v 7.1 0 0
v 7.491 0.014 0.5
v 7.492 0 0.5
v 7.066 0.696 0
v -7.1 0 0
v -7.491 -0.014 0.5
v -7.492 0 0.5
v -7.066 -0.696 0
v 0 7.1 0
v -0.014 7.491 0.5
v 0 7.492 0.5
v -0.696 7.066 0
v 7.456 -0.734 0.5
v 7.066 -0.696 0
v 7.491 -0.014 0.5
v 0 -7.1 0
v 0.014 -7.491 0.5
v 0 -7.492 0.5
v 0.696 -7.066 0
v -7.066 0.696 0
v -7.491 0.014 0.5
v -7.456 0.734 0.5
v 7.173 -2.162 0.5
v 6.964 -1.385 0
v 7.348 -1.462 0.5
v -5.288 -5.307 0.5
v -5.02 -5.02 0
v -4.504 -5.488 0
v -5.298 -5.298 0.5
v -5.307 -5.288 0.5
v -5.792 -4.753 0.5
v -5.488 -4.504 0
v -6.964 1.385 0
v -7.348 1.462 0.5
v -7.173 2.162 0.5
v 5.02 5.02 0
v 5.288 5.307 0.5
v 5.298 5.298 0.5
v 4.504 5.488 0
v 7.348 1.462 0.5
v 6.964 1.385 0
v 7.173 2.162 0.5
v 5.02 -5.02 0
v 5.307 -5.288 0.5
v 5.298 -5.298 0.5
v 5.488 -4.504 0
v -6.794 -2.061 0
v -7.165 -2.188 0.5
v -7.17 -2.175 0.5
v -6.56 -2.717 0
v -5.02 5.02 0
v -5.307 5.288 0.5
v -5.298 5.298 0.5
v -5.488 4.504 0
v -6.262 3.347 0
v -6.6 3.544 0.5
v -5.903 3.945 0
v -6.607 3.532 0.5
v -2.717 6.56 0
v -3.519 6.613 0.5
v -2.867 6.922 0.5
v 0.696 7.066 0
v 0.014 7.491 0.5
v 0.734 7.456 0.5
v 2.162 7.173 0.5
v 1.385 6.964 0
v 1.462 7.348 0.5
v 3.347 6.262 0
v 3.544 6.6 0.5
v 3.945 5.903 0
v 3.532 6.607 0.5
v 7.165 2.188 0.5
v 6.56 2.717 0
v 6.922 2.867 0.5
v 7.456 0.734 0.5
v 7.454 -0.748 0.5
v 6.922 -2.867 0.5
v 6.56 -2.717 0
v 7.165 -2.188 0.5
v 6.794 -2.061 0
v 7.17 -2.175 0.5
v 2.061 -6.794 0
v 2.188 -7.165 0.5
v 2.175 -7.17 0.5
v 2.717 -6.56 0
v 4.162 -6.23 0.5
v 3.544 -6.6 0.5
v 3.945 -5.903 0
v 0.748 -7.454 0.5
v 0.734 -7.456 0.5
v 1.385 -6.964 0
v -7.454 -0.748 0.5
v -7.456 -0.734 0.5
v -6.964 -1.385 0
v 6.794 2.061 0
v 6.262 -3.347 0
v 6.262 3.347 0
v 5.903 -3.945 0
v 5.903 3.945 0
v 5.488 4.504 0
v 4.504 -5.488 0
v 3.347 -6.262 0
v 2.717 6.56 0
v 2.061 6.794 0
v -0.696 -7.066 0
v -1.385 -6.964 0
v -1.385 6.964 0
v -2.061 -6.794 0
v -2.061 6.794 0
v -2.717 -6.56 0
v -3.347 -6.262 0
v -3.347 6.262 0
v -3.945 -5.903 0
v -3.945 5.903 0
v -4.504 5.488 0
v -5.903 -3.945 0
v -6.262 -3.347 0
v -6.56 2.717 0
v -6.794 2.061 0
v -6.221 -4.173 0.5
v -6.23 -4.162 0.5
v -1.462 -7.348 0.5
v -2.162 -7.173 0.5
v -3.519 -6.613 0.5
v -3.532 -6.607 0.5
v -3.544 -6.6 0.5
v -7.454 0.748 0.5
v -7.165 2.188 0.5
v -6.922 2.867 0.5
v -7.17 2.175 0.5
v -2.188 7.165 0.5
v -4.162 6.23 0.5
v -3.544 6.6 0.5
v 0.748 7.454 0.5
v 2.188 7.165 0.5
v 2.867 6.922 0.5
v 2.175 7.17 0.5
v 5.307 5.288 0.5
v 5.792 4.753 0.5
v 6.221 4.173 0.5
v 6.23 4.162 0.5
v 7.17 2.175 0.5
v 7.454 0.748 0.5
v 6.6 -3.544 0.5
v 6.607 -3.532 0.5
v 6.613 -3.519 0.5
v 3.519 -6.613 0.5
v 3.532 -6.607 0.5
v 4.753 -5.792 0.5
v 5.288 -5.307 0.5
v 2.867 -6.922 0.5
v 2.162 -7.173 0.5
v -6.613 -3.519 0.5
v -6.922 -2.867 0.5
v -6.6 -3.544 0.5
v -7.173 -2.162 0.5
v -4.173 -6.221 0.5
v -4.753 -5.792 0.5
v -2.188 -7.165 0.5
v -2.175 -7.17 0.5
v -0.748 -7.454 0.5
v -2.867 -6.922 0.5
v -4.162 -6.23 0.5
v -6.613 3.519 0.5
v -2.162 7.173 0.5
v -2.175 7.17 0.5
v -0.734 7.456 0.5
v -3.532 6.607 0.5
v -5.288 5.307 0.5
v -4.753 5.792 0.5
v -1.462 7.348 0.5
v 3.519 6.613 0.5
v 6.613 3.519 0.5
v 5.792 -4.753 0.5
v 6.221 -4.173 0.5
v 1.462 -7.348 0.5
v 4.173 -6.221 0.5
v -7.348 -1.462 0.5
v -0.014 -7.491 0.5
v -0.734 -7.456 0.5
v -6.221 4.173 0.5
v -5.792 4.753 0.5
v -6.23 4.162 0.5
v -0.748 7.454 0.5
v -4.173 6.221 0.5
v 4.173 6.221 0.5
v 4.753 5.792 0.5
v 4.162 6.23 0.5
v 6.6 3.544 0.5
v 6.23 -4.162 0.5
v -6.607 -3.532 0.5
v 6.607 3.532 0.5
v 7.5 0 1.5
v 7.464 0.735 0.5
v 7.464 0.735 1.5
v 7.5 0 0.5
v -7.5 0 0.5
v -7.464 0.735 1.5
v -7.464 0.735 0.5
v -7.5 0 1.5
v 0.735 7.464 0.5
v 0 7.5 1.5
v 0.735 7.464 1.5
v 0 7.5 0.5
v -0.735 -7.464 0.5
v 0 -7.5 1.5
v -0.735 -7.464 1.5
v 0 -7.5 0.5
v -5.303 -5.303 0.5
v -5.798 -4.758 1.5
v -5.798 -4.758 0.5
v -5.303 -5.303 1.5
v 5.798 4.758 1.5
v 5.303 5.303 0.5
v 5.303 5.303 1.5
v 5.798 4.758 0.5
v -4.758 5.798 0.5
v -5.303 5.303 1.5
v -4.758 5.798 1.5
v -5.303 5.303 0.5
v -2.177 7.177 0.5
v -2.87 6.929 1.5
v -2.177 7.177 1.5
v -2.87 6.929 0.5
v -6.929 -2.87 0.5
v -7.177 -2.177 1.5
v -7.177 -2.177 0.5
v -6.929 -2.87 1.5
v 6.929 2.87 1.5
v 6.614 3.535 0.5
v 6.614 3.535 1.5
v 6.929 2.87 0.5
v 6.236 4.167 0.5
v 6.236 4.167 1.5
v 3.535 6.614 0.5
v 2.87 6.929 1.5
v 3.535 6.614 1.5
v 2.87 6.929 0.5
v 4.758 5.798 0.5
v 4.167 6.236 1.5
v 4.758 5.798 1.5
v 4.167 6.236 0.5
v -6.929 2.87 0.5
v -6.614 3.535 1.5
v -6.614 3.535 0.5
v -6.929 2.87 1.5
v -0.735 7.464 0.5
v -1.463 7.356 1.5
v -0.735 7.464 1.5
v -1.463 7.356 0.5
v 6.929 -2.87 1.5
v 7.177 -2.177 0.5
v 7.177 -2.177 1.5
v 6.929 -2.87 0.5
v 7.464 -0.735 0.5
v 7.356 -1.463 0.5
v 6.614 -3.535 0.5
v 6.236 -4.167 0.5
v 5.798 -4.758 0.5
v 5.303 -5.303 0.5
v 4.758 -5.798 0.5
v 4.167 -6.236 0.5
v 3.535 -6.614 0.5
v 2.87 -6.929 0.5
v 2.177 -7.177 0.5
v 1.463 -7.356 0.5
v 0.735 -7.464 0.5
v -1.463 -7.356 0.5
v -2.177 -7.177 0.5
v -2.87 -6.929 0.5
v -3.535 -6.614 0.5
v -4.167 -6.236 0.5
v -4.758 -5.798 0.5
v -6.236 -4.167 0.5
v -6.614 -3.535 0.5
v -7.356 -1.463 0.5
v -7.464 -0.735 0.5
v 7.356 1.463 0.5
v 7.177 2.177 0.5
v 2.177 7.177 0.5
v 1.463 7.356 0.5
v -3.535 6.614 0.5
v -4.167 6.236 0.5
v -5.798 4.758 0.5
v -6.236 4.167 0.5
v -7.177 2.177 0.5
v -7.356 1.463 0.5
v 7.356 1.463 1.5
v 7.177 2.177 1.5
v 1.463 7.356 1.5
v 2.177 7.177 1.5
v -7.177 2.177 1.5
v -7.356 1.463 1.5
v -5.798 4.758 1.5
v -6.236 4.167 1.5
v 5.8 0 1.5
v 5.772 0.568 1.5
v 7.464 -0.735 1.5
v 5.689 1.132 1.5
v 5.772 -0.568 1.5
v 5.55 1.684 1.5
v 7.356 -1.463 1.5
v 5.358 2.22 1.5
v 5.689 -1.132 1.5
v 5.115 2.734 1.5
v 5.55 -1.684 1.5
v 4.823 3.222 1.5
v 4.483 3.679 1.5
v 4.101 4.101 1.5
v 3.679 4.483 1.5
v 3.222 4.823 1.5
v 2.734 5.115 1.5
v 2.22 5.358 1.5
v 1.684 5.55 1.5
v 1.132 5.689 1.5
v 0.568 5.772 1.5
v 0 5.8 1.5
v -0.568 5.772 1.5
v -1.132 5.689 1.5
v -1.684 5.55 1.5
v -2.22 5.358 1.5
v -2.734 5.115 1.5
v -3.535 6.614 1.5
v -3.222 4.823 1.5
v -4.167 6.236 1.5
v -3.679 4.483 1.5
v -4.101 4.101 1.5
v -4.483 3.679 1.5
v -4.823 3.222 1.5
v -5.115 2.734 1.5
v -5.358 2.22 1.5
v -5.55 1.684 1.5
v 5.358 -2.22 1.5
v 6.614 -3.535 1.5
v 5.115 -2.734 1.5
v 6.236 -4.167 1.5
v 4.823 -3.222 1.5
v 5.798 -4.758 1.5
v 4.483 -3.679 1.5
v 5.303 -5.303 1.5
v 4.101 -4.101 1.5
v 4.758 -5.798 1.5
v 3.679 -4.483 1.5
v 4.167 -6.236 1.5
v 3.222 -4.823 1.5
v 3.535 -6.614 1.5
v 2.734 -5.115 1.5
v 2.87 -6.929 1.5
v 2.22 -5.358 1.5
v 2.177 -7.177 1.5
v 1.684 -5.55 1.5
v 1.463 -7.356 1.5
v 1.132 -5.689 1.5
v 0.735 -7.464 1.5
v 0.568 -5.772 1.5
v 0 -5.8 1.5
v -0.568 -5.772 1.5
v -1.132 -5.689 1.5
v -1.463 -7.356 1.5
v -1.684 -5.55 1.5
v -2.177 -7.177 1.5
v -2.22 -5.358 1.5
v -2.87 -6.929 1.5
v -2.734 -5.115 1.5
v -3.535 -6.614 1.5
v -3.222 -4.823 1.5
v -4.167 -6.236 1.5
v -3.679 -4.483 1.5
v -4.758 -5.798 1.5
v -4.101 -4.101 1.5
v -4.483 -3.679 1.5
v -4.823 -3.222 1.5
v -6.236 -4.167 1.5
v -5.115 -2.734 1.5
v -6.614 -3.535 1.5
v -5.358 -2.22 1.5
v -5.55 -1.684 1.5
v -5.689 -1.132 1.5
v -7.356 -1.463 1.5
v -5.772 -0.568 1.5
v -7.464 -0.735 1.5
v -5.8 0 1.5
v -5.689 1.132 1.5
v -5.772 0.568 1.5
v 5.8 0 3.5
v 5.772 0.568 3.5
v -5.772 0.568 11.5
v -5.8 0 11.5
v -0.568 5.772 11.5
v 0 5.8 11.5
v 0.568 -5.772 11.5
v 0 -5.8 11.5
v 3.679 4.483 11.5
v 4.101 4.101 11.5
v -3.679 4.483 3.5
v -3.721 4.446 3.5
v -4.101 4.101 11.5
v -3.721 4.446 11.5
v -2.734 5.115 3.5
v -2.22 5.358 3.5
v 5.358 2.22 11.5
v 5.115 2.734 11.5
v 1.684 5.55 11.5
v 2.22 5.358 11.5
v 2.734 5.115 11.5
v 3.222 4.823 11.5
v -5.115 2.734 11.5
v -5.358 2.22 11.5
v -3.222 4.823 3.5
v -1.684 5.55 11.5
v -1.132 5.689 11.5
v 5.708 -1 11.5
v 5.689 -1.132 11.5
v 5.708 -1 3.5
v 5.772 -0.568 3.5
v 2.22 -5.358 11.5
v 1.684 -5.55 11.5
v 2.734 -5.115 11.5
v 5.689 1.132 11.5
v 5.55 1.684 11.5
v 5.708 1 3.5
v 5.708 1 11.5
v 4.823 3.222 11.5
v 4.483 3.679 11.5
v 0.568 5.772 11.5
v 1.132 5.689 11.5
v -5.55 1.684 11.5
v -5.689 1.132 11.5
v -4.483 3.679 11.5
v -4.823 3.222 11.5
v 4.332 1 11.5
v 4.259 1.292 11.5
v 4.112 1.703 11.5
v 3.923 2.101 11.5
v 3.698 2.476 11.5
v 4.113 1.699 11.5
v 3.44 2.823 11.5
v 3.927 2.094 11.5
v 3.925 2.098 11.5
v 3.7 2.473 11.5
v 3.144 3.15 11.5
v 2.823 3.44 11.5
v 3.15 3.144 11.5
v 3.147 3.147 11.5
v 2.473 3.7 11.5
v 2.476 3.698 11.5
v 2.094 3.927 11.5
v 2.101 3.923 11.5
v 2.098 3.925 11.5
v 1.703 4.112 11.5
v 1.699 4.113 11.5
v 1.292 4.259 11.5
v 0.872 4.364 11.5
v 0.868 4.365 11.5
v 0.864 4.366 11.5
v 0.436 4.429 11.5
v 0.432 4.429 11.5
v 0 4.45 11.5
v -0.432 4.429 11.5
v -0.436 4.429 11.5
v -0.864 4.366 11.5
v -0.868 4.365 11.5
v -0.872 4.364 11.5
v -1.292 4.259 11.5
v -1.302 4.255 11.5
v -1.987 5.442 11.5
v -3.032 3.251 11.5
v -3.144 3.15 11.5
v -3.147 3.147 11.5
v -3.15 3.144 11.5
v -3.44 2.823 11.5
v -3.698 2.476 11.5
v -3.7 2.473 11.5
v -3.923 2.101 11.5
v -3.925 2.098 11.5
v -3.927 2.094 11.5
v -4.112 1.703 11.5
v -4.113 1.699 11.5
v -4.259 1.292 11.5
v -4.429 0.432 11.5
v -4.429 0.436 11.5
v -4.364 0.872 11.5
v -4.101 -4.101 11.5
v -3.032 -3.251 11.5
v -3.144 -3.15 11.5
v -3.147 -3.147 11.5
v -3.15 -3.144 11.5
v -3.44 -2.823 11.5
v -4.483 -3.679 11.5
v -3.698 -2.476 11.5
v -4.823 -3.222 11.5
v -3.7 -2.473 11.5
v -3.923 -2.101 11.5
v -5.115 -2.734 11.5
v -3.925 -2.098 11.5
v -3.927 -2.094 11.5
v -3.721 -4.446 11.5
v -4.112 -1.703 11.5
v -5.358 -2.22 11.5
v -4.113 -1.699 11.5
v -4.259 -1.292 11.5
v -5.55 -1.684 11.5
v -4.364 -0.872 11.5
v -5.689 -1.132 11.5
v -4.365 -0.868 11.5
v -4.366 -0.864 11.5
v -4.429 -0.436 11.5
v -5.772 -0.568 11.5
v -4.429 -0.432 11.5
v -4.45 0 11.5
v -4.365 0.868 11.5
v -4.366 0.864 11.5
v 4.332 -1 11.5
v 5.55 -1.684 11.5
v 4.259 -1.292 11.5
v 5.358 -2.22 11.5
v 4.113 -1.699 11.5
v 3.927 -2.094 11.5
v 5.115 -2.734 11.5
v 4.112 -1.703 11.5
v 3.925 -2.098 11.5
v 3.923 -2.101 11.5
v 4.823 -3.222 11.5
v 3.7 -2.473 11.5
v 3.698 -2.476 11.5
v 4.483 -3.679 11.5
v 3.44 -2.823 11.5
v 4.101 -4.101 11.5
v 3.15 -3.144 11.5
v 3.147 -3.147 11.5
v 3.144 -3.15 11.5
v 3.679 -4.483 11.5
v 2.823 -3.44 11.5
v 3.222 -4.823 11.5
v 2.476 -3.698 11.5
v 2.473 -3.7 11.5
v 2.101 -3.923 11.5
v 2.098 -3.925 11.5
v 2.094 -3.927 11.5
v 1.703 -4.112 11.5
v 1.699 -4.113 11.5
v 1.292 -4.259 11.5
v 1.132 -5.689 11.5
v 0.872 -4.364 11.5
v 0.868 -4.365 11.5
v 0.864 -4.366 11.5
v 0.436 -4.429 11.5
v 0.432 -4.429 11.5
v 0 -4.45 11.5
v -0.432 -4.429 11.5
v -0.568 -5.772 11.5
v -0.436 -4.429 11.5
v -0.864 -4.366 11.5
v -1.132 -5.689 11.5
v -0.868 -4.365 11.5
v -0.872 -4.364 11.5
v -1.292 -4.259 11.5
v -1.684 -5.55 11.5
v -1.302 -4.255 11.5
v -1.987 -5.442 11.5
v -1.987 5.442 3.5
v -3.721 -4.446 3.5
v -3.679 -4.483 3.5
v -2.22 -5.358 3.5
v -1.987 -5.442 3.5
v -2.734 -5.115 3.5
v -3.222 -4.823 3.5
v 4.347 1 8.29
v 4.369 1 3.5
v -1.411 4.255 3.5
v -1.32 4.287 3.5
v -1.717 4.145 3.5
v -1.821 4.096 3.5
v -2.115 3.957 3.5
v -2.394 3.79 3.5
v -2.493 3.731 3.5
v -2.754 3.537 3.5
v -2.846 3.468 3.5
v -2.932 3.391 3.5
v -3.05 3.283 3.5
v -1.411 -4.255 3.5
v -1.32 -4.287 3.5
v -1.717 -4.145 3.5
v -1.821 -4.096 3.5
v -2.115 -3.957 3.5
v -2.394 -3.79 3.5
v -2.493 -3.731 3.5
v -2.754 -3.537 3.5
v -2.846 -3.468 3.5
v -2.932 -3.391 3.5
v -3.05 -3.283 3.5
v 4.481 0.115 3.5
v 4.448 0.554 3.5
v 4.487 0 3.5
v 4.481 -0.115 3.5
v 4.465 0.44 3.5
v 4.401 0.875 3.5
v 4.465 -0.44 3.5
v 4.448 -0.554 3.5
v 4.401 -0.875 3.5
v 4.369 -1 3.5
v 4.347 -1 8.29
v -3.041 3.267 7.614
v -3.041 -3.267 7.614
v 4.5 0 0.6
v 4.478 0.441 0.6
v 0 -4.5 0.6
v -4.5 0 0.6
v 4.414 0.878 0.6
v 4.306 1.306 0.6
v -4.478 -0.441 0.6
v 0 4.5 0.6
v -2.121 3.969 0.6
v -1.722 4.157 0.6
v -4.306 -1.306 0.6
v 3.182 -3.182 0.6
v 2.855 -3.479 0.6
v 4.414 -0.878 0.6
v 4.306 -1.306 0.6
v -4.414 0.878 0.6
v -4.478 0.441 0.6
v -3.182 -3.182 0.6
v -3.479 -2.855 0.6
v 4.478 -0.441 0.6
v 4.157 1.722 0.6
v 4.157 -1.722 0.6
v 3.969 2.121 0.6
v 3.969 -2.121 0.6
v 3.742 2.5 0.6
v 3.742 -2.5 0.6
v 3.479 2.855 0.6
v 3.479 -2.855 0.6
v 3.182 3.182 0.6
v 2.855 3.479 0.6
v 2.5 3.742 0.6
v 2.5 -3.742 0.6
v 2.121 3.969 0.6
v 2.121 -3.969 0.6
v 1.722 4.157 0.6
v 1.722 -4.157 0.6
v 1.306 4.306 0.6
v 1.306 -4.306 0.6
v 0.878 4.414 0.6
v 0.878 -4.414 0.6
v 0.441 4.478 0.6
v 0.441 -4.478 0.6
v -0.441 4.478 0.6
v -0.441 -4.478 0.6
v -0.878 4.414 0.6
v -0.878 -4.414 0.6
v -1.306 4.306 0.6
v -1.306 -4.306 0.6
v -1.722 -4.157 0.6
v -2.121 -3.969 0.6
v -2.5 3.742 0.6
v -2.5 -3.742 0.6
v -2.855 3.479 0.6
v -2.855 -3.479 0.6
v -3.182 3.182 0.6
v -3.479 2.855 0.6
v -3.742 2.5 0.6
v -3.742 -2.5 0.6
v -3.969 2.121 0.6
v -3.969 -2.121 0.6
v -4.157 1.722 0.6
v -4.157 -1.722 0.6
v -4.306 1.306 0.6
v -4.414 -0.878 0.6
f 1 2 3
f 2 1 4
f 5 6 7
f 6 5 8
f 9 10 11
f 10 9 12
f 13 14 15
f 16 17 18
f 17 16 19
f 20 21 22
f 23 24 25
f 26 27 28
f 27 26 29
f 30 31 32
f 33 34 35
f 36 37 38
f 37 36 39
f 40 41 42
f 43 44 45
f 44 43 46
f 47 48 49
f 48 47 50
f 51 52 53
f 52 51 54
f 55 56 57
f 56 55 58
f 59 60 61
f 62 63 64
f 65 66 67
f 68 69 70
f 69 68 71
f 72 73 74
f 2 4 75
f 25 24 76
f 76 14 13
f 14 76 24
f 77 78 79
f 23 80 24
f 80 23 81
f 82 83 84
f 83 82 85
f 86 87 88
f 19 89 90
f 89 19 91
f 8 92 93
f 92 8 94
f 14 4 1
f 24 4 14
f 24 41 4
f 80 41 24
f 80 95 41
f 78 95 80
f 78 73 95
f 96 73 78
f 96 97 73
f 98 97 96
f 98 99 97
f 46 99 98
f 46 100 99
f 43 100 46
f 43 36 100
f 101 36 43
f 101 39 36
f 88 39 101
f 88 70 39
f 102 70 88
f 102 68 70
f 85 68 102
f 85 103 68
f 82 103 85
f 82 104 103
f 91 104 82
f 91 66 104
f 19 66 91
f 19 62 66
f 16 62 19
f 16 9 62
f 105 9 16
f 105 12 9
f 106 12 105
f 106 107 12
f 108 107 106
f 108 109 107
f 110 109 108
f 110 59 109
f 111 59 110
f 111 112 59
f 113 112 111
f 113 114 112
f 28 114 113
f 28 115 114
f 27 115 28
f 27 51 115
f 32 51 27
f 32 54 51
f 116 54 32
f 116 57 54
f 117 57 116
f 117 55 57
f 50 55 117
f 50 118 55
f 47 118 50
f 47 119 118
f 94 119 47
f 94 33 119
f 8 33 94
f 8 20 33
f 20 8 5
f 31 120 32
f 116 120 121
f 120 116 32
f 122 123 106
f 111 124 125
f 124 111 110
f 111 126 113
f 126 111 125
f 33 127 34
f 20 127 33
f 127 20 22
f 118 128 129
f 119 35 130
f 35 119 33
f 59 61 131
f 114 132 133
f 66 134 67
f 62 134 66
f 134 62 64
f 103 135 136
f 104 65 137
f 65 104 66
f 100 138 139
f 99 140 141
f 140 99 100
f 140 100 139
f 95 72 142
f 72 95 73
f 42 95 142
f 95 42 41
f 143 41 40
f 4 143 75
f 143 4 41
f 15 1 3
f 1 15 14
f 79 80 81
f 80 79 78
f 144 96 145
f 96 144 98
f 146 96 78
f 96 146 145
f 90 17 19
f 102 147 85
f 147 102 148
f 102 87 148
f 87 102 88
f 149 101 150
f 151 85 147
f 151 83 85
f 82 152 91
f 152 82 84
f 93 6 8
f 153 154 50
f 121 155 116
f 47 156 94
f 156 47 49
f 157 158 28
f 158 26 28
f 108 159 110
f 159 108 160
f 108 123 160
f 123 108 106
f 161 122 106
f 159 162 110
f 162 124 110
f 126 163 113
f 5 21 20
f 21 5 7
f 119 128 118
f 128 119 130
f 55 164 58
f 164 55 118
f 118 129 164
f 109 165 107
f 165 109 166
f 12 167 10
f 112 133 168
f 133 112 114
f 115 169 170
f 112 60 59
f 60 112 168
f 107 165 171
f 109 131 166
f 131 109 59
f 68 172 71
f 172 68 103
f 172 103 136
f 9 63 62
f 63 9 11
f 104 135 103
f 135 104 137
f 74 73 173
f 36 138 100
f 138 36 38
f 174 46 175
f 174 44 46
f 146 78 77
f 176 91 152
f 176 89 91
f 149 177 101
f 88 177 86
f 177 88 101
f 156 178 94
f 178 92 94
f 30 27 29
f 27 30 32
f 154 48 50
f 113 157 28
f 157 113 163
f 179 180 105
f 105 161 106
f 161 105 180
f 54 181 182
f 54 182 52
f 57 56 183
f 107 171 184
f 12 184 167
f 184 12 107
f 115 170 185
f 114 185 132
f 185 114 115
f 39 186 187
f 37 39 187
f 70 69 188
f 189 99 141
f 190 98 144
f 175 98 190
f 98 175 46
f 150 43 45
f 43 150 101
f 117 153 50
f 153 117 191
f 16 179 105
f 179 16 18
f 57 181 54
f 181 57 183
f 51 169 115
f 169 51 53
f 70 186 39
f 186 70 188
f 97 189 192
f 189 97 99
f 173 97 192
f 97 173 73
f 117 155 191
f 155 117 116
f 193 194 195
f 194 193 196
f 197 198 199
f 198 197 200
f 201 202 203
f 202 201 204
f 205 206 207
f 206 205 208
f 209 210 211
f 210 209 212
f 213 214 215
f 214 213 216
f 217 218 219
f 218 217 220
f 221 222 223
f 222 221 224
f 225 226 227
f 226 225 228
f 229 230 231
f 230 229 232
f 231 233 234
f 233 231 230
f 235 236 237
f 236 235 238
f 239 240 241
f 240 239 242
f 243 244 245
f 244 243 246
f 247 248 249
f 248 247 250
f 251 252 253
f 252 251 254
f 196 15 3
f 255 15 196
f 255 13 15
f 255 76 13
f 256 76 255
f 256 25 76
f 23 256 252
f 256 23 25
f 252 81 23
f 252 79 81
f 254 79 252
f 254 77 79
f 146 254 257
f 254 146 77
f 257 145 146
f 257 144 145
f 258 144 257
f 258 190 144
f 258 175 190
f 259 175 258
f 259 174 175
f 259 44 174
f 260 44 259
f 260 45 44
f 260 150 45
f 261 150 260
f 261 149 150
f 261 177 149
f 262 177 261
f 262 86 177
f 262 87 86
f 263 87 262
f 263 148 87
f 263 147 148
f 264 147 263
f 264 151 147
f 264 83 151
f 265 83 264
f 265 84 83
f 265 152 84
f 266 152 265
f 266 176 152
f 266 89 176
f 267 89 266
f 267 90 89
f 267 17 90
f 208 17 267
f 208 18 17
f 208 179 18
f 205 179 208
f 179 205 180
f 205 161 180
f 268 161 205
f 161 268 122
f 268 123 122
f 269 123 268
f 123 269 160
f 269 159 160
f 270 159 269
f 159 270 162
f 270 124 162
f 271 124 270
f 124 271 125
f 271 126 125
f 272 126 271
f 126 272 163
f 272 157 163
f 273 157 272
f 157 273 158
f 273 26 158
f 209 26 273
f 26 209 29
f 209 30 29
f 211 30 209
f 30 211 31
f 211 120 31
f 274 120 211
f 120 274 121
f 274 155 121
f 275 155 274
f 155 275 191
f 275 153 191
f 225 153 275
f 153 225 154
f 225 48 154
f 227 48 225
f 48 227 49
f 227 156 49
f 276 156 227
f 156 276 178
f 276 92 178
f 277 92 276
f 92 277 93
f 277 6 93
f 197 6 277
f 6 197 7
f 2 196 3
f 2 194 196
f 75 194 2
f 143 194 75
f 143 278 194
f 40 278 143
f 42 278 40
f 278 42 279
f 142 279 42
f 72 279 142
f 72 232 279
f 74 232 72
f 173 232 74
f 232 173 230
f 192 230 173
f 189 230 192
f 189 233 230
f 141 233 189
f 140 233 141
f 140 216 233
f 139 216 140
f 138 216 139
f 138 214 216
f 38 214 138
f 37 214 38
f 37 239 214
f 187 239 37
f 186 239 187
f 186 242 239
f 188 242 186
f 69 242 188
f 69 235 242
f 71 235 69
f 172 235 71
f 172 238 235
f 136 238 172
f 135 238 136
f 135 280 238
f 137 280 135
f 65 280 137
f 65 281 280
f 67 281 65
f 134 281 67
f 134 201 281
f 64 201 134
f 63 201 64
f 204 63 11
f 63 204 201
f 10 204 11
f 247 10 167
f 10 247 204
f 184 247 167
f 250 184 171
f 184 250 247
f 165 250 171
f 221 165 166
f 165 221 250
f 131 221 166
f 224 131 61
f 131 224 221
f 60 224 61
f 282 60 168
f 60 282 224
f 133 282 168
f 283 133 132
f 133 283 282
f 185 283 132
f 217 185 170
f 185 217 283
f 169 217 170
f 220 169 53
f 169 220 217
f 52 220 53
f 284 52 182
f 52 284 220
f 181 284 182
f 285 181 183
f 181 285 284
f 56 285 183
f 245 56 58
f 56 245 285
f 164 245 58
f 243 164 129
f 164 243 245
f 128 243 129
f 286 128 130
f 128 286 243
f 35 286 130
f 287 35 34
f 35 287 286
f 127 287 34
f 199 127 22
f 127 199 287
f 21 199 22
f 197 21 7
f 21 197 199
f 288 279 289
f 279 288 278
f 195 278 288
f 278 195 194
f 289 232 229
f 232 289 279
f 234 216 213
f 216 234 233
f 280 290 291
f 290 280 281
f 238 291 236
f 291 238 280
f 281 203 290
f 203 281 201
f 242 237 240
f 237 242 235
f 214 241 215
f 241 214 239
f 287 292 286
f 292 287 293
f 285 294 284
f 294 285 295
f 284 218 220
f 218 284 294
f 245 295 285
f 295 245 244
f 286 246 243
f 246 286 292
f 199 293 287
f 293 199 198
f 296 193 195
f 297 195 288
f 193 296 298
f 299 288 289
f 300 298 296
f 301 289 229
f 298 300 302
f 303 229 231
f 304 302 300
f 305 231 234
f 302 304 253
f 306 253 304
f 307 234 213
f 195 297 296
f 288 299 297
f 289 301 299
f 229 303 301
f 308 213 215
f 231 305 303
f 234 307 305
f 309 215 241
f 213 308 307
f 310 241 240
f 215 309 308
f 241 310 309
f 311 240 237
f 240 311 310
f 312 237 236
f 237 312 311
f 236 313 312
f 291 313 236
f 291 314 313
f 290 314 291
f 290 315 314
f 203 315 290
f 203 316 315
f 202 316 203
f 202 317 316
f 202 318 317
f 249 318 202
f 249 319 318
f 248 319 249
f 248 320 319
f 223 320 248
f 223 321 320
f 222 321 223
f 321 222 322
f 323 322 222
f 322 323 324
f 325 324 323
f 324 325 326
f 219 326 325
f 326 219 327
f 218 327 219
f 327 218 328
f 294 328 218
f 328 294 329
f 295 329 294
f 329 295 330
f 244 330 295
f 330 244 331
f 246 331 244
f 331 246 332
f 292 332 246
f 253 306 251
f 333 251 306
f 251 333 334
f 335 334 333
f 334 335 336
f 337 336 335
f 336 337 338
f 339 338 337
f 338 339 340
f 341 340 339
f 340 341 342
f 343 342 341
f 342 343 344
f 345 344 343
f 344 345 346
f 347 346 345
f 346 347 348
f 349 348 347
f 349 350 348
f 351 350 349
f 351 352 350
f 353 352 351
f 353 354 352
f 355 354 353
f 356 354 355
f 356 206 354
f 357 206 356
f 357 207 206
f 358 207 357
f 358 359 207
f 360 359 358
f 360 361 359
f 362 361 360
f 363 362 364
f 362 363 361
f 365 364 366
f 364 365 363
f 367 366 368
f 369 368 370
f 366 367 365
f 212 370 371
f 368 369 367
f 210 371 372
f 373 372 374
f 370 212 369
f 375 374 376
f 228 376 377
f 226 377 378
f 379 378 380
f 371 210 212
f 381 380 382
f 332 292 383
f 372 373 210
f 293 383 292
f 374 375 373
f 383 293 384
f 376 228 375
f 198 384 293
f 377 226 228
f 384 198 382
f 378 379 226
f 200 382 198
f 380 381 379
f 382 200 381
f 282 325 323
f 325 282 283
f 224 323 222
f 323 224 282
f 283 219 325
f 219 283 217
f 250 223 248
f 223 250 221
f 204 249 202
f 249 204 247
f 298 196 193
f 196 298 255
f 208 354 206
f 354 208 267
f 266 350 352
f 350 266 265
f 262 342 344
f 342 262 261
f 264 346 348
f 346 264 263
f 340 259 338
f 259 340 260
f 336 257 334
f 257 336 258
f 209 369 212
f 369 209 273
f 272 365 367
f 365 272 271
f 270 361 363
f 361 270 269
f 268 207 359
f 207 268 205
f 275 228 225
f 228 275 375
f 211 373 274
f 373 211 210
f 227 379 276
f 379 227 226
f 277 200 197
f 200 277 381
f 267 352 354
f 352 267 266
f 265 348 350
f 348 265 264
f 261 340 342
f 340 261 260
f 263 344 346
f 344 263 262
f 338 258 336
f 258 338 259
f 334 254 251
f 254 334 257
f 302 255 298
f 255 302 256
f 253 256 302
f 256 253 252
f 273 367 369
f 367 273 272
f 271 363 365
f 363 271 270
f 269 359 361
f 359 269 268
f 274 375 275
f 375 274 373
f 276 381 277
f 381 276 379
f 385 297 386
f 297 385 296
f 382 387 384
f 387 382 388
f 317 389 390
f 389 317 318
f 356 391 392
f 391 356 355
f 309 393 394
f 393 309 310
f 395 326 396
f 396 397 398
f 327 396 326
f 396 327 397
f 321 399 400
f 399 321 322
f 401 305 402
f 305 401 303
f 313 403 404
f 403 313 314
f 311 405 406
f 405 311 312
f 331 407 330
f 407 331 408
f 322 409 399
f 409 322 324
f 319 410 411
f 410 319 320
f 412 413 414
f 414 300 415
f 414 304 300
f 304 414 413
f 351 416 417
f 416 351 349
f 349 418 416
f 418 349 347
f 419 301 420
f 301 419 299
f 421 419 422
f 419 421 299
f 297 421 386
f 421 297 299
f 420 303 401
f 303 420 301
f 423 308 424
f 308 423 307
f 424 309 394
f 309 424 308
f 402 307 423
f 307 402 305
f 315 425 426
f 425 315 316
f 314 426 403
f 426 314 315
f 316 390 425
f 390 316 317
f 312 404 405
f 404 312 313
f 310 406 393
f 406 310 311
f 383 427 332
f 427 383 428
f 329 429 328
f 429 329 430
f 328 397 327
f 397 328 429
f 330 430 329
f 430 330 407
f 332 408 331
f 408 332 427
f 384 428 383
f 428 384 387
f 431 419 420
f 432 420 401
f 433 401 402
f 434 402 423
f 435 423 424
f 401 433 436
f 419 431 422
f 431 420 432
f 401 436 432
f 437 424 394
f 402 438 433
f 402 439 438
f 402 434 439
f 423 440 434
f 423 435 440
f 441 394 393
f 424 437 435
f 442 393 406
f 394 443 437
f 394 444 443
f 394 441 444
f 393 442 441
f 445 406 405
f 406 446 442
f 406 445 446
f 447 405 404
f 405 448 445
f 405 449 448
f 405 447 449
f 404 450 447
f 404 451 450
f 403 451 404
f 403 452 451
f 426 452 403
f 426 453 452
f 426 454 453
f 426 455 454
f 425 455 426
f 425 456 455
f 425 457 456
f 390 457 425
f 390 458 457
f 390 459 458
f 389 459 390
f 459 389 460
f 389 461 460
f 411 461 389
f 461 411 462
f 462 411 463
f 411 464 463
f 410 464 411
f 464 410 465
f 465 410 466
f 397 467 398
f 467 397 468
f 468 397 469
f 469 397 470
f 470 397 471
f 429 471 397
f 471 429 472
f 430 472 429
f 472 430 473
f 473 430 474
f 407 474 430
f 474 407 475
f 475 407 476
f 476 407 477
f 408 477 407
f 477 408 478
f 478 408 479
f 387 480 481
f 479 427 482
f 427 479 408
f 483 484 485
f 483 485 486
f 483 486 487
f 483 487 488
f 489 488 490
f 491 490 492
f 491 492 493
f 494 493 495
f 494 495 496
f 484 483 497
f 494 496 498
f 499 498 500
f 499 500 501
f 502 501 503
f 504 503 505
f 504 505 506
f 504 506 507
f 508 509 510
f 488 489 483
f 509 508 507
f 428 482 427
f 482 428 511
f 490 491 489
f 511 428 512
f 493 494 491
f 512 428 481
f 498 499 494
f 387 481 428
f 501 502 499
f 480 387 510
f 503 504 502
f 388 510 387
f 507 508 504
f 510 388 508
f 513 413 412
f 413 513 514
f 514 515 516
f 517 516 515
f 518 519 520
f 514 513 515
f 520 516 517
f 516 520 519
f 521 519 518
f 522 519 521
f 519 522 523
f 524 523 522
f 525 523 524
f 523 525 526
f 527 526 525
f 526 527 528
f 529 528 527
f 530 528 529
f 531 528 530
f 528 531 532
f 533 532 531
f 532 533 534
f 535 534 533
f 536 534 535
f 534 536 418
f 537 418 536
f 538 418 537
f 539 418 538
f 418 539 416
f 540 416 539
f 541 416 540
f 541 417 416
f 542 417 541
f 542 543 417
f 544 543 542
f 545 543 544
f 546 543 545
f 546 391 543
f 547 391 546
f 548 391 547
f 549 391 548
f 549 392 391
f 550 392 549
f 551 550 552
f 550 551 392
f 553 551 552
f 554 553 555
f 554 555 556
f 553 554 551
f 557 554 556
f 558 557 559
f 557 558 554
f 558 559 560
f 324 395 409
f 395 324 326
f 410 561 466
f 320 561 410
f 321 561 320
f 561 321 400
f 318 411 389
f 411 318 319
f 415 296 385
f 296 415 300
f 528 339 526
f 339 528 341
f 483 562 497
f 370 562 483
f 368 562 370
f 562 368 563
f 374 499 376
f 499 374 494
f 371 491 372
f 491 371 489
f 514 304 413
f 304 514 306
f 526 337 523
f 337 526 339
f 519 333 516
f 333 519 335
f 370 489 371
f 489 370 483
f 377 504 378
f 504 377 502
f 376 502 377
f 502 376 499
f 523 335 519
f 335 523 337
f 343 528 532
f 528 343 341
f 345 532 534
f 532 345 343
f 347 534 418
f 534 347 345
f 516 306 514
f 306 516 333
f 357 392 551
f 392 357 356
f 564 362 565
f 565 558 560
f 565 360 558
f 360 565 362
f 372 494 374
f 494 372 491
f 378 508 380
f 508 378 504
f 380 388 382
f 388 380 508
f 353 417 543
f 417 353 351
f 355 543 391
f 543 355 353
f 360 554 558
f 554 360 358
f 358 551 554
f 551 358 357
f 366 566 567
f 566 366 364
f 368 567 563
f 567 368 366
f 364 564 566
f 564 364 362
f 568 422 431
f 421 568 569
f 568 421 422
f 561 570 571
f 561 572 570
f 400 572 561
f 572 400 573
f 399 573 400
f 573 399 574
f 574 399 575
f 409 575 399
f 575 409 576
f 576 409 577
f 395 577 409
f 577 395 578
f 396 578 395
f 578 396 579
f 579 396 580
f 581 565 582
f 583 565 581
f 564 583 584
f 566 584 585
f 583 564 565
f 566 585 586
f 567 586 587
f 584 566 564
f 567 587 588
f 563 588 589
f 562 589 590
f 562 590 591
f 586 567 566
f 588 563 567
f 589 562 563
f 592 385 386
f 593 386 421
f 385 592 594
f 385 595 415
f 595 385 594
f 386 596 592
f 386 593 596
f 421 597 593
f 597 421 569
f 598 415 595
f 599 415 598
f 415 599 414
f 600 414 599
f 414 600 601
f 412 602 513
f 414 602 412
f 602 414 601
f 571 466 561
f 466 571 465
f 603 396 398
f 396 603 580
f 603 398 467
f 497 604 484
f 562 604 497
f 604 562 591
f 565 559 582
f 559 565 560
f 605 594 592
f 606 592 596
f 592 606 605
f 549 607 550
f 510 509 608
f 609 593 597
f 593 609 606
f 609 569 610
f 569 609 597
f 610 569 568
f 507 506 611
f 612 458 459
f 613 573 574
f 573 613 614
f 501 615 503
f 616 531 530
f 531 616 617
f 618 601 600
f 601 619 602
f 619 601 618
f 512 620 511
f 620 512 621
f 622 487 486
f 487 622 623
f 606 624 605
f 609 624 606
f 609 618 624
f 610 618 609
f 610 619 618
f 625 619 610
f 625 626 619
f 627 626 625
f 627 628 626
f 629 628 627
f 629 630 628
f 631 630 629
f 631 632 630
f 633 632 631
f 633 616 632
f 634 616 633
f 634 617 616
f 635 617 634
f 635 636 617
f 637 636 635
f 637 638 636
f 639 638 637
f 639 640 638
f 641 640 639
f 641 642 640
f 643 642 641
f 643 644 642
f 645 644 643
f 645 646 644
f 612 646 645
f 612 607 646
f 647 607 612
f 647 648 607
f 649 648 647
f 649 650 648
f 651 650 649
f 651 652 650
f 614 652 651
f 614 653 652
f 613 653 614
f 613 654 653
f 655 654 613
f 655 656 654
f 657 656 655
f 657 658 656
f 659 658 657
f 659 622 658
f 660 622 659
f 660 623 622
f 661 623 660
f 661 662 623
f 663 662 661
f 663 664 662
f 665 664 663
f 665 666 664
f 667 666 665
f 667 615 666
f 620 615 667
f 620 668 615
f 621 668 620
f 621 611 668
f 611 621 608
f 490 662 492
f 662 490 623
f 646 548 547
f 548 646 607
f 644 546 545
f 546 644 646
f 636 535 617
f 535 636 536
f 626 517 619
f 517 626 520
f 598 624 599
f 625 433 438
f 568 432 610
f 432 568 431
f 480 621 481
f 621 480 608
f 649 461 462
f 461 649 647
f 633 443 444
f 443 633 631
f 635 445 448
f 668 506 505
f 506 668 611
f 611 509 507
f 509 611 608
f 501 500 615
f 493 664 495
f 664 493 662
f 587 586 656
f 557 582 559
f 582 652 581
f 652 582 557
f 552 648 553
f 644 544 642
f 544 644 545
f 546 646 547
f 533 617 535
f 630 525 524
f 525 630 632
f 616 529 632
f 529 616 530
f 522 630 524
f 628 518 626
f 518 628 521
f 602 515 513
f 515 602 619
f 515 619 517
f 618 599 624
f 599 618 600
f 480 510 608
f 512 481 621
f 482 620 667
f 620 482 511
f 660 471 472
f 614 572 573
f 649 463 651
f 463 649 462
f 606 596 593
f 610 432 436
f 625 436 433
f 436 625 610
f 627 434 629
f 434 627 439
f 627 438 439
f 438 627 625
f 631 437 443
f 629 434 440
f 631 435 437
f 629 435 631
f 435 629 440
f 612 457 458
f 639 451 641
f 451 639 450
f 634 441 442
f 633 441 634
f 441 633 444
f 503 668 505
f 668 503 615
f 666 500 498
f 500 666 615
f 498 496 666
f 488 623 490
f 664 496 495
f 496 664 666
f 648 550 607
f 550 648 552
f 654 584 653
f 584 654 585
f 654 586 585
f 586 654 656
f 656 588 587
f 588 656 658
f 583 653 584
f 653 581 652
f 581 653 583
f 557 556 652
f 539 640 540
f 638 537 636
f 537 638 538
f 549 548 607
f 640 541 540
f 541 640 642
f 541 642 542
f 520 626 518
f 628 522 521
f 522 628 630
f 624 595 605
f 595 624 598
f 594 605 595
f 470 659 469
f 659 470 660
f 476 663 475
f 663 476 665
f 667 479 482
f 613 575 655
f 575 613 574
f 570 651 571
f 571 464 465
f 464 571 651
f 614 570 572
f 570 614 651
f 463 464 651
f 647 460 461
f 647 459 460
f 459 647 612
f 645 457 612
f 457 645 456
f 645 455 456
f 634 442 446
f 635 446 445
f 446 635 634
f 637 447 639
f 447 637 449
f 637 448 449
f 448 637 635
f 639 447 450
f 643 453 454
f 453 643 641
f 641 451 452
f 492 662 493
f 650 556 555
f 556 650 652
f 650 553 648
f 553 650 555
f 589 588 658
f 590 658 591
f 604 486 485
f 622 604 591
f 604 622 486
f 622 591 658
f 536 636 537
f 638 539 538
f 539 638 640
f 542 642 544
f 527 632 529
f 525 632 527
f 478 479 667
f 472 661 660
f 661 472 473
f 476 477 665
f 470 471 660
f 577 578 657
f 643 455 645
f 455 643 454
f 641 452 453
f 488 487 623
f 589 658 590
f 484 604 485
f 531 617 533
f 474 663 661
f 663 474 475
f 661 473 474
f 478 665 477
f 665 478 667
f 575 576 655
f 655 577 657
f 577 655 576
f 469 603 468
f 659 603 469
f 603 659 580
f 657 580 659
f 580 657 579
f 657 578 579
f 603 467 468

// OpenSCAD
$fn=64;

id=11.6;

difference() {
  union() {
    // Chamfer bottom 
    cylinder(d1=14.2, d2=15, h=0.5+0.01);
    // Base 
    translate([0, 0, 0.5]) cylinder(d=15, h=1);
    // Top plug 
    cylinder(d=id, h=1.5+10);
  }
  // Hollow hole
  translate([0, 0, 0.6]) #cylinder(d1=9, d2=8.9, h=11);
  
  for (i = [0:120:270]) { 
    rotate([0, 0, i]) translate([0, -1, 1.5+2]) cube([30, 2, 15]);
  }
}
